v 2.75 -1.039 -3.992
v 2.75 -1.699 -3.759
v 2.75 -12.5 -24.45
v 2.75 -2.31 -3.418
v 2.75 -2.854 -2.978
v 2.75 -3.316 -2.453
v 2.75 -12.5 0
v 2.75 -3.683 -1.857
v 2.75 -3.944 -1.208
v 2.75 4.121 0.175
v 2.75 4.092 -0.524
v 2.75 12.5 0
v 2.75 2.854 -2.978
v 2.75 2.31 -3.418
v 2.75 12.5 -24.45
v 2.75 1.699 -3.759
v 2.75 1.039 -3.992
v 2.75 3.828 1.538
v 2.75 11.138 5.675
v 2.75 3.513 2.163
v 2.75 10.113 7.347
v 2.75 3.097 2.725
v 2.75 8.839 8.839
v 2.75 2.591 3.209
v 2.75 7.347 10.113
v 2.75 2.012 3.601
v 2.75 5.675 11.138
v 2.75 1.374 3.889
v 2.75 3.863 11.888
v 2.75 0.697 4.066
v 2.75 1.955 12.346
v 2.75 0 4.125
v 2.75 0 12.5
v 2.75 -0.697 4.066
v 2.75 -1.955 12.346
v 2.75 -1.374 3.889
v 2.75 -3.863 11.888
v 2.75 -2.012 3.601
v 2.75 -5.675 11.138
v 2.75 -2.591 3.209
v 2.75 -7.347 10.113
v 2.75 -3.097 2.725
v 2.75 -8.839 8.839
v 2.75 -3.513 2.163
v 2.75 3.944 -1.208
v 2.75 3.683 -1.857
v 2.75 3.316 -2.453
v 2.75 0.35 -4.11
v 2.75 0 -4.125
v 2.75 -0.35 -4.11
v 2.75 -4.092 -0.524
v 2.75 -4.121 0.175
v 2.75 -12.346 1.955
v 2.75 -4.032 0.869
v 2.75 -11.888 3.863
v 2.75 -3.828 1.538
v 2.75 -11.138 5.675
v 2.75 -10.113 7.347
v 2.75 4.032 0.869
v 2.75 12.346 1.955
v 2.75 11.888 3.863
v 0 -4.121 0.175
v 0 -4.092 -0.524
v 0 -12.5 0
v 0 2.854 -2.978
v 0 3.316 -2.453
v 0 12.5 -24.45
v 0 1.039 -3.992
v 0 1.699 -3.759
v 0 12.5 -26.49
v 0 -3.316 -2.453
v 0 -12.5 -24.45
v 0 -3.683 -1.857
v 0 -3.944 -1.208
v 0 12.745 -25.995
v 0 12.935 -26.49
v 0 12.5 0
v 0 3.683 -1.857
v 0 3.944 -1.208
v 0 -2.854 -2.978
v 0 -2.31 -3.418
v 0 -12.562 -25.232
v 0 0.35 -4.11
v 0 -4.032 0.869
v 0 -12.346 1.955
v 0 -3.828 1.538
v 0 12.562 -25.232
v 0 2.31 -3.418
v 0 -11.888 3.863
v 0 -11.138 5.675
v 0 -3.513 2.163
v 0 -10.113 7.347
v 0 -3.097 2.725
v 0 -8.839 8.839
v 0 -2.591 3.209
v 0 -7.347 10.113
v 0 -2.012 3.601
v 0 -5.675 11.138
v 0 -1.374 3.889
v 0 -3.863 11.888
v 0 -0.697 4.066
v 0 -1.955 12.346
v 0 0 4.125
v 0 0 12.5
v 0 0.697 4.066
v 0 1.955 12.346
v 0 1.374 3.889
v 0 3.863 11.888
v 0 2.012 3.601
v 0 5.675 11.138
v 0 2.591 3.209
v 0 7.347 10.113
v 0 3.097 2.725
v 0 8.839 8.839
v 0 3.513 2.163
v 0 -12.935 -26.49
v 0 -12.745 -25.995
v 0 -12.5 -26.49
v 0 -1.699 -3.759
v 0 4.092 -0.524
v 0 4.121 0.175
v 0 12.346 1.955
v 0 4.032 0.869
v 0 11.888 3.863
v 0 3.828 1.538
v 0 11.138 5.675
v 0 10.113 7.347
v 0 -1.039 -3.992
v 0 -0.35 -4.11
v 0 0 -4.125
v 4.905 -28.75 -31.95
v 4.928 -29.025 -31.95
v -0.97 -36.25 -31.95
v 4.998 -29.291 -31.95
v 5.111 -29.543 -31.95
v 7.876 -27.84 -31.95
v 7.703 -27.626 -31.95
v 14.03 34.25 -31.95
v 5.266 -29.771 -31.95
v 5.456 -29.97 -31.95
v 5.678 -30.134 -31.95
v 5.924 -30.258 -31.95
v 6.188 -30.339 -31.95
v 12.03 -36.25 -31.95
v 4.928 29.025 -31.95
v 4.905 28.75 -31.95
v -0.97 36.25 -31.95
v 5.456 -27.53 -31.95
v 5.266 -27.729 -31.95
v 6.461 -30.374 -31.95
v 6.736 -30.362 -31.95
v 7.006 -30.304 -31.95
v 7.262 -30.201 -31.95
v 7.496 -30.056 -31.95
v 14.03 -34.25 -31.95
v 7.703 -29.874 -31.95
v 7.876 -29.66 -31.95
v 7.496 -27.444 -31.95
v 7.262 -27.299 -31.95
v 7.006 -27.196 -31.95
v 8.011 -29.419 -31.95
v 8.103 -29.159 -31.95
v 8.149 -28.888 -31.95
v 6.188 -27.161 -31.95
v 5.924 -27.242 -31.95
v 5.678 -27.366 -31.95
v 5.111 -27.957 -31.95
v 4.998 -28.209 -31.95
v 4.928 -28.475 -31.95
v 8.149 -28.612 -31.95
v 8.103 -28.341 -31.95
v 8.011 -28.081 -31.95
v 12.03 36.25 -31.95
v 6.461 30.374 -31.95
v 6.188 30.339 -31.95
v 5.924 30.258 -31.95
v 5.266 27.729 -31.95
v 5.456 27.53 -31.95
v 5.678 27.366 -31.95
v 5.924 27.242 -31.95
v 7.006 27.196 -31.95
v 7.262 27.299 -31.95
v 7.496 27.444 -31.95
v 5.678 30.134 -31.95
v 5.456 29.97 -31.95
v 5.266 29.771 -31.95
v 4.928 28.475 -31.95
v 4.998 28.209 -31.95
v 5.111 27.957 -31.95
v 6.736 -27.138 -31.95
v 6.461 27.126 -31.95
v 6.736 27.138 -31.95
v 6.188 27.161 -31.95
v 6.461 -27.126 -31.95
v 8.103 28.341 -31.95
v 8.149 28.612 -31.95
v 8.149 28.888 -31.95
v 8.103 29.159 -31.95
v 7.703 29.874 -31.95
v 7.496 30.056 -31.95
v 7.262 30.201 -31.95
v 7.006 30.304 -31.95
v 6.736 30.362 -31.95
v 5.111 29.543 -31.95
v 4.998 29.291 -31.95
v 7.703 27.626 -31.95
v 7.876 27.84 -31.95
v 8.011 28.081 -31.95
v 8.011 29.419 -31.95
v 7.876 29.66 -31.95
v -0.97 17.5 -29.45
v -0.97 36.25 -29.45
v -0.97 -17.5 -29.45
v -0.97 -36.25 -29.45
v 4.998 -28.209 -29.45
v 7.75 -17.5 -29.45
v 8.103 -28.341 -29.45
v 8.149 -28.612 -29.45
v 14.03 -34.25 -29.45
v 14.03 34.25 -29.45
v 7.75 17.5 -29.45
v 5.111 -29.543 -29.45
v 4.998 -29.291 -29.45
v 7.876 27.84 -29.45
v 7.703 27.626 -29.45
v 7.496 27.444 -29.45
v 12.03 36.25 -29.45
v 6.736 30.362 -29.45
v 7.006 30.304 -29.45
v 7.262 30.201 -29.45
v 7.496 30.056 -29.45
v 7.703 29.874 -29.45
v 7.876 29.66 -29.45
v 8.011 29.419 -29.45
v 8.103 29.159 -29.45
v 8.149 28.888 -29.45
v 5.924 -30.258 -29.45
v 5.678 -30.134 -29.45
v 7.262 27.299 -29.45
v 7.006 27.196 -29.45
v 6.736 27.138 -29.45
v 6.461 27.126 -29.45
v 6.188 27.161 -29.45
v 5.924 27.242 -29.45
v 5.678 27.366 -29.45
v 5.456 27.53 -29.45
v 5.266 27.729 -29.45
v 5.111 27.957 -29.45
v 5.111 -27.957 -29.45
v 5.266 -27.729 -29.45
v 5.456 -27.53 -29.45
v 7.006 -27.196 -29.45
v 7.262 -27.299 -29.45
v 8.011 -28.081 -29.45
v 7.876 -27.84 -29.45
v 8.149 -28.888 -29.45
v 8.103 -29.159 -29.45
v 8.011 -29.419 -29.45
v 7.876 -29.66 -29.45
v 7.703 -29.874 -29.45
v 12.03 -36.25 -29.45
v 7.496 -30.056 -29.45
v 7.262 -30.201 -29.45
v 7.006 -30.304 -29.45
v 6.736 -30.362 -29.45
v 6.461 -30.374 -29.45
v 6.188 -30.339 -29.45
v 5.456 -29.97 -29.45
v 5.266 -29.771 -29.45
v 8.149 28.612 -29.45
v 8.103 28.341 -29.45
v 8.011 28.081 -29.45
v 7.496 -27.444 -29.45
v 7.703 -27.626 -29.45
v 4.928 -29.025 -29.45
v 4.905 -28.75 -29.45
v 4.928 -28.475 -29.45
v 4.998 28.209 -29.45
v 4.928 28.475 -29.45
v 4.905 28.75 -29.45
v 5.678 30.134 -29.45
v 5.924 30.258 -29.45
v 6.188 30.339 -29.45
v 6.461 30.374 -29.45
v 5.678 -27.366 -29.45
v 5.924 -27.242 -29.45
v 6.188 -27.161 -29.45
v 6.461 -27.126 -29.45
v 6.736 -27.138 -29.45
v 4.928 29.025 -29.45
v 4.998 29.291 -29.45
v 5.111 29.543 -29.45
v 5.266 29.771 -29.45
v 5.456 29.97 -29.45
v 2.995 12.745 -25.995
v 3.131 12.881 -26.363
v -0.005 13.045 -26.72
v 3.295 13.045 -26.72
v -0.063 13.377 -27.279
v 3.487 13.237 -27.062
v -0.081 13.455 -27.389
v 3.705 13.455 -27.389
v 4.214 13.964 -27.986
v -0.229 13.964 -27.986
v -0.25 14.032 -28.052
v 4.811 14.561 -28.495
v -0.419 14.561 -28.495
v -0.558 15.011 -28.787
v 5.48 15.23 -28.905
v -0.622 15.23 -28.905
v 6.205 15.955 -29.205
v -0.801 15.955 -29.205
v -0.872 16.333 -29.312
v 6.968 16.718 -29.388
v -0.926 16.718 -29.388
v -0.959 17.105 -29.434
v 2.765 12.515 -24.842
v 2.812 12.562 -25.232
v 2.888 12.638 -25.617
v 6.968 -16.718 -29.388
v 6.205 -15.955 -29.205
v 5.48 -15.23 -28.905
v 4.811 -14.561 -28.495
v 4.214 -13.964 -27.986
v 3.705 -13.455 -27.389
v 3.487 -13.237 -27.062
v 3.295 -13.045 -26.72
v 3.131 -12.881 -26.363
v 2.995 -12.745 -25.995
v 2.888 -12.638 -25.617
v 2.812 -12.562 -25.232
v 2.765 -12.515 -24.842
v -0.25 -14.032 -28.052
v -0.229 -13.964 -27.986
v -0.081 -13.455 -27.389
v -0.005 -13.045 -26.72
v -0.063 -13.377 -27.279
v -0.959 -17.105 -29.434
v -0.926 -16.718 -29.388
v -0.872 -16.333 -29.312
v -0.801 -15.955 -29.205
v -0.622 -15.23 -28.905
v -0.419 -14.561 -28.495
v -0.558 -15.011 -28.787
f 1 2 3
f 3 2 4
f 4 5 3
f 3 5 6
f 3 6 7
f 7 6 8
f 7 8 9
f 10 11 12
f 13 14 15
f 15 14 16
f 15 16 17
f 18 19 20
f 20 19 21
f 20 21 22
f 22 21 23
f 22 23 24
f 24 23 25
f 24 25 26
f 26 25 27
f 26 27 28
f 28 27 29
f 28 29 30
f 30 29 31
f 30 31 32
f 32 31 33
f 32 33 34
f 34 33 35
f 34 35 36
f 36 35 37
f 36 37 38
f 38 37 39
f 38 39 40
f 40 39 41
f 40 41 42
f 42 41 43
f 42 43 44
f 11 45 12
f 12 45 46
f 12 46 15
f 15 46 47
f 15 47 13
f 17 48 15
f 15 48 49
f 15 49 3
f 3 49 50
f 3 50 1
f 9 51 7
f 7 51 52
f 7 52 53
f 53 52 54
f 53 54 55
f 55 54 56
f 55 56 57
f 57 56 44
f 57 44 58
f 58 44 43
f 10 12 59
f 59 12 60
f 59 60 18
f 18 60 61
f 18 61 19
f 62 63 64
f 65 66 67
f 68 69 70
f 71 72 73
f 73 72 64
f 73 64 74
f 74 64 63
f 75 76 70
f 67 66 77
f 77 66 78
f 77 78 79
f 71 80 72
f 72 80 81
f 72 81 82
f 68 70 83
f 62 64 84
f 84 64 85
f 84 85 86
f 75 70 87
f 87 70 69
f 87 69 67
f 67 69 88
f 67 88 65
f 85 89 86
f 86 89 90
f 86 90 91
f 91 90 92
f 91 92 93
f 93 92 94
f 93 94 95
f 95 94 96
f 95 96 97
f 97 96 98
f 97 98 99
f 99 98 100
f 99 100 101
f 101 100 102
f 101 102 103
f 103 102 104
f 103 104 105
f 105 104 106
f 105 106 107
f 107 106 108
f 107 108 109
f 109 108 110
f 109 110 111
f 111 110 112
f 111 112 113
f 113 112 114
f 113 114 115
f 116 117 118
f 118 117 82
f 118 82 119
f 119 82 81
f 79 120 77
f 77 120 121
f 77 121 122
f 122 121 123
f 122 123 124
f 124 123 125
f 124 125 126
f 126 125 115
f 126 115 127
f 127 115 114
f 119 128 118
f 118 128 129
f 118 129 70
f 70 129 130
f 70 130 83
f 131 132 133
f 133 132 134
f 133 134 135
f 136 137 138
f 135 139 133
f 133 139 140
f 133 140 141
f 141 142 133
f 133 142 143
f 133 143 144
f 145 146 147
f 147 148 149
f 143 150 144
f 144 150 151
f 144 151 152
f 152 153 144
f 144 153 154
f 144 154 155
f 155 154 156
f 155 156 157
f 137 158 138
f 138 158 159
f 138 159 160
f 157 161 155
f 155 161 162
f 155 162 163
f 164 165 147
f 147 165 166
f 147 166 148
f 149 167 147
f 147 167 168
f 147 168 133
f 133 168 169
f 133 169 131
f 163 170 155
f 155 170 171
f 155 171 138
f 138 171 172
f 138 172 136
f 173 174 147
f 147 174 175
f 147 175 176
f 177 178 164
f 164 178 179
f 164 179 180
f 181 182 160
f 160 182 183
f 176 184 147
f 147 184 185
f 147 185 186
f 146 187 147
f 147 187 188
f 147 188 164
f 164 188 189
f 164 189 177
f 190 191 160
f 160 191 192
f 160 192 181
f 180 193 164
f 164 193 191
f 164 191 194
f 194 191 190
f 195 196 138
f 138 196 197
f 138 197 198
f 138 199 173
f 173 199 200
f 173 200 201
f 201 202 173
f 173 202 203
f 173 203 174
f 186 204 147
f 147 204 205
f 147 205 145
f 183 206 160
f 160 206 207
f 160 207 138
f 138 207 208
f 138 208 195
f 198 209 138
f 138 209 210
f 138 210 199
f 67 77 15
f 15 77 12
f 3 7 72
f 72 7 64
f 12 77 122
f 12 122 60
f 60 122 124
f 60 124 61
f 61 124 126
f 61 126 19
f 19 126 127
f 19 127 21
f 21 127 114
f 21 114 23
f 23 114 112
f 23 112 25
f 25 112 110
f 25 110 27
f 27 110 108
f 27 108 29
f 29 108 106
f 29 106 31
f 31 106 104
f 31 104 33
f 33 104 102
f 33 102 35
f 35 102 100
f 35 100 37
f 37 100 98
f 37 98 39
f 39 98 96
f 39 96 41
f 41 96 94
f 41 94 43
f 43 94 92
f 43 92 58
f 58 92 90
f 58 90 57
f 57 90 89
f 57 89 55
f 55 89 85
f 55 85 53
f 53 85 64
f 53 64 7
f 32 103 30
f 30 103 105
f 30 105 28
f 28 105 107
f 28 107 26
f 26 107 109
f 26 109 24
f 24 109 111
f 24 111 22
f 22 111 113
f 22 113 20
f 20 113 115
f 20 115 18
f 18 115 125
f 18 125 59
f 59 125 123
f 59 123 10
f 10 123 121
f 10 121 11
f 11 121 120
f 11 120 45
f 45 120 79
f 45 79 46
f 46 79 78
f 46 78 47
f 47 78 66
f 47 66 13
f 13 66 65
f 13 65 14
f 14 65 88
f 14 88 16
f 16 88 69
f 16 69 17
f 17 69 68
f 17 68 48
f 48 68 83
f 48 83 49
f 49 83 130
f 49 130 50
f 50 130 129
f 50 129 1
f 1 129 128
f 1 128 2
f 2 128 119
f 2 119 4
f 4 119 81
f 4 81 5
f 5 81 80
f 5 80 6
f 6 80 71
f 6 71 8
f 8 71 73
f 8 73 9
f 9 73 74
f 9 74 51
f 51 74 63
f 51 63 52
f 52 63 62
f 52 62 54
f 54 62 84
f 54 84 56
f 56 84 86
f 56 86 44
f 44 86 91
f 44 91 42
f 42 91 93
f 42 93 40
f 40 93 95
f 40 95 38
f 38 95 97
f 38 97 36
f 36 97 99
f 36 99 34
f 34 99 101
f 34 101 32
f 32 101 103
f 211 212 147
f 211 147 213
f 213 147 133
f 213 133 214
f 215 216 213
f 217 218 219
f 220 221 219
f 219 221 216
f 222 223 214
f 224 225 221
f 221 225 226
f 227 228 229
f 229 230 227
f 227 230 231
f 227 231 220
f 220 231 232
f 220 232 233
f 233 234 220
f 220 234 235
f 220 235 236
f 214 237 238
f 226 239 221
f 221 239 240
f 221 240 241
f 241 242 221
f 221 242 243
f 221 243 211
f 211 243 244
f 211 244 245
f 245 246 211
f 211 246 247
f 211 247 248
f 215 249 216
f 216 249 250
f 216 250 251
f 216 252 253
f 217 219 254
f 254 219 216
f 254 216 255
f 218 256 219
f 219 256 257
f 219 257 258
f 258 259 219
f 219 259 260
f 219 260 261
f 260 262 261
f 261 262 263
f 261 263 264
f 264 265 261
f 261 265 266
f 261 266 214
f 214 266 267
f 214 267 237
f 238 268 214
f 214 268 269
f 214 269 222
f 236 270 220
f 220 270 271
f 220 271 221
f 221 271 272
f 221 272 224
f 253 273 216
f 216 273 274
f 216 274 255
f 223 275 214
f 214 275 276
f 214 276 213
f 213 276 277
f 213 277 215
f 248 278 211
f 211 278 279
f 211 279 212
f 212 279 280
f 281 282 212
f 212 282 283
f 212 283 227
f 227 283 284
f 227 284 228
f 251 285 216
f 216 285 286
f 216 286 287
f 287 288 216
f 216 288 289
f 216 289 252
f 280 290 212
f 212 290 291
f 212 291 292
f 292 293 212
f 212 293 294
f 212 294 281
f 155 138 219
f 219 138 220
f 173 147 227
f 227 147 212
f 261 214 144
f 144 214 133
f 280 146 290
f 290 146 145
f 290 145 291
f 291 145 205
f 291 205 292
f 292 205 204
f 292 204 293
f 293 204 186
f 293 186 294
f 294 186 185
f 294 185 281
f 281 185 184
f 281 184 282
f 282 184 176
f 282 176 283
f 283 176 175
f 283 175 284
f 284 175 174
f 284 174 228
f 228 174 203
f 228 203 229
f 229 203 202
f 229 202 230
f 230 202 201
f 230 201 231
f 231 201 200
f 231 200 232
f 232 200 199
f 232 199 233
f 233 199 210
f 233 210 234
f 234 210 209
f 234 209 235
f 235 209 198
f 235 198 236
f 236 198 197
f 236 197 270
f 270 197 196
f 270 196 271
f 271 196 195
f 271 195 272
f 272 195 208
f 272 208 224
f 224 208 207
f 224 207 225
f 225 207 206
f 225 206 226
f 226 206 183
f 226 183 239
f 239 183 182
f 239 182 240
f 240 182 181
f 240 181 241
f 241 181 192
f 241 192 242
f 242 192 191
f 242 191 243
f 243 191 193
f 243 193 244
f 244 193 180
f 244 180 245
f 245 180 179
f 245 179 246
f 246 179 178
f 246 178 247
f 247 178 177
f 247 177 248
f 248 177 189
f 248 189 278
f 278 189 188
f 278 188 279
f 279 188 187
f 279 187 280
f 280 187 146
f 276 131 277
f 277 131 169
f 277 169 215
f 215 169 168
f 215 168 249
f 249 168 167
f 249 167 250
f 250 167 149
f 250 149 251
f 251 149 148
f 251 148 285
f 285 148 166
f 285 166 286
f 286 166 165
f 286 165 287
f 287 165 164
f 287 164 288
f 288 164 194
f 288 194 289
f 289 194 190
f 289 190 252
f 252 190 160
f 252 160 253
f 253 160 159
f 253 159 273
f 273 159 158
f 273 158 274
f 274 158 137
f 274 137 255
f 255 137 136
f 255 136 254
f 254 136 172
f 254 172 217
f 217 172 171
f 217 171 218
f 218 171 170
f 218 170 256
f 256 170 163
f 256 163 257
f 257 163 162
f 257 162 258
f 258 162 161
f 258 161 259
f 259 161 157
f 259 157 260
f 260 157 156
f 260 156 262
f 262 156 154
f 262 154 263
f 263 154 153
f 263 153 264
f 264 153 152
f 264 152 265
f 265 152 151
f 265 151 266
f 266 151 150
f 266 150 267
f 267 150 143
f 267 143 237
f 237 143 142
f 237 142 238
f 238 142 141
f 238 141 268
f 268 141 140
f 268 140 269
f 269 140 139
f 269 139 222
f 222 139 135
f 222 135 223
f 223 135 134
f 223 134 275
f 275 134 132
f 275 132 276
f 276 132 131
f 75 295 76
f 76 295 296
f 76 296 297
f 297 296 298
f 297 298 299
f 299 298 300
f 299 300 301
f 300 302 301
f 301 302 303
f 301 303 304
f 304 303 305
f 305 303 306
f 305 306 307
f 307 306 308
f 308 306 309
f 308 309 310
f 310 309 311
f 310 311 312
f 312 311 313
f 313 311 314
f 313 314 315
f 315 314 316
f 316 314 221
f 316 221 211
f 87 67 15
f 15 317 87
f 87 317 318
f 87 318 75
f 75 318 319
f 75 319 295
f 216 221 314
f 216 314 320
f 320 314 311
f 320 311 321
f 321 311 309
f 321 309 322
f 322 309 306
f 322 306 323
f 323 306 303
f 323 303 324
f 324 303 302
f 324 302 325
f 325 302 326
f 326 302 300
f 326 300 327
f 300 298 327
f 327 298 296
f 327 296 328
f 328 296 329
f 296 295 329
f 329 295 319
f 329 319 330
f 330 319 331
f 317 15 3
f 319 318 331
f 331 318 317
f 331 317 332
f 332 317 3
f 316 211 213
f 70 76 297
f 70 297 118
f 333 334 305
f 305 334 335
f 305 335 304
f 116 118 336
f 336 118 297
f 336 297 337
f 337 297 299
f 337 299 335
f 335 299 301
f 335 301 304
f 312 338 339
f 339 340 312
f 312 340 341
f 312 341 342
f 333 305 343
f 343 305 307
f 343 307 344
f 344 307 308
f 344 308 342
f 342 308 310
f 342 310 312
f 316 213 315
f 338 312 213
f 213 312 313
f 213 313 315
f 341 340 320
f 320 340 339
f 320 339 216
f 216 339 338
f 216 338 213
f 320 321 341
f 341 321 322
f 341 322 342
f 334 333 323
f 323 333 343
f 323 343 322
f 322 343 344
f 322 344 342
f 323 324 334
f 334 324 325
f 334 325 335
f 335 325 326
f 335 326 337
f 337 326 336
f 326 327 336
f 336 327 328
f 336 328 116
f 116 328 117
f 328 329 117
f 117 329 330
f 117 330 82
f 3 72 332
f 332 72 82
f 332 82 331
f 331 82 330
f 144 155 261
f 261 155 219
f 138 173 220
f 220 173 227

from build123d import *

# Parameters (mm, degrees)
SKETCH1_R               = 4.125
BOSS_EXTRUDE1_DEPTH     = 2.75
BOSS_EXTRUDE4_DEPTH     = 2.5
CUT_EXTRUDE2_REACH      = 80.314
SKETCH7_W               = 7
SKETCH7_H               = 16.5
SKETCH7_W_2             = 16
SKETCH7_H_2             = 8
CUT_EXTRUDE3_REACH      = 82.041
SKETCH9_W               = 2.75
SKETCH9_H               = 22.388822383
SKETCH8_W               = 2.75
SKETCH8_H               = 27.825
BOSS_EXTRUDE5_DEPTH     = 12.5
FILLET2_R               = 1
FILLET3_R               = 4
CUT_EXTRUDE4_DEPTH      = 74.103052287
CUT_EXTRUDE4_DEPTH_BACK = 74.103052287
SKETCH10_W              = 78.235731334
SKETCH10_H              = 6.290045588
SKETCH11_W              = 15
SKETCH11_H              = 2.5
BOSS_EXTRUDE6_DEPTH     = 12.5
BOSS_EXTRUDE7_DEPTH     = 2.5
SKETCH14_R              = 1.625
CUT_EXTRUDE5_DEPTH      = 2.5
FILLET4_R               = 5
CHAMFER1_SIZE           = 2


with BuildPart() as part:
    # Sketch1 → Boss-Extrude1 (new body)
    with BuildSketch(Plane(origin=(0, 0, 0), x_dir=(0, 0, -1), z_dir=(1, 0, 0))):
        with BuildLine():
            Line((0, 12.5), (34.45, 12.5))
            Line((34.45, 12.5), (34.45, -12.5))
            Line((34.45, -12.5), (0, -12.5))
            ThreePointArc((0, -12.5), (-12.5, 0), (0, 12.5))
        make_face()
        Circle(SKETCH1_R, mode=Mode.SUBTRACT)
    extrude(amount=BOSS_EXTRUDE1_DEPTH)

    # Sketch6 → Boss-Extrude4 (add)
    with BuildSketch(Plane(origin=(0, 0, -34.45), x_dir=(-1, 0, 0), z_dir=(0, 0, -1))):
        Polygon((-8.812505246, 36.25), (53.321583376, 36.25), (53.321583376, -36.25), (6.25, -36.25), (-19.178416624, -36.25), (-19.178416624, 36.25), align=None)
    extrude(amount=-BOSS_EXTRUDE4_DEPTH)

    # Sketch7 → Cut-Extrude2 (cut, up to next)
    with BuildSketch(Plane.XY.offset(-31.95), mode=Mode.PRIVATE) as cut_extrude2_sk1:
        with Locations((-1.711858899, -11.632438111)):
            Rectangle(SKETCH7_W, SKETCH7_H)
    cut_extrude2_tool1 = extrude(cut_extrude2_sk1.sketch, amount=-CUT_EXTRUDE2_REACH, mode=Mode.PRIVATE) & part.part
    # Sketch7 → Cut-Extrude2 (cut, up to next)
    with BuildSketch(Plane.XY.offset(-31.95), mode=Mode.PRIVATE) as cut_extrude2_sk2:
        with Locations((-16.5, 0)):
            Rectangle(SKETCH7_W_2, SKETCH7_H_2)
    cut_extrude2_tool2 = extrude(cut_extrude2_sk2.sketch, amount=-CUT_EXTRUDE2_REACH, mode=Mode.PRIVATE) & part.part
    add(cut_extrude2_tool1.solids().sort_by_distance((-1.711859, -11.632438, -31.95))[0], mode=Mode.SUBTRACT)
    add(cut_extrude2_tool2.solids().sort_by_distance((-16.5, 0, -31.95))[0], mode=Mode.SUBTRACT)

    # Sketch9 → Cut-Extrude3 (cut, up to next)
    with BuildSketch(Plane.XZ.offset(12.5), mode=Mode.PRIVATE) as cut_extrude3_sk1:
        with Locations((1.375, -20.755588809)):
            Rectangle(SKETCH9_W, SKETCH9_H)
    cut_extrude3_tool1 = extrude(cut_extrude3_sk1.sketch, amount=-CUT_EXTRUDE3_REACH, mode=Mode.PRIVATE) & part.part
    add(cut_extrude3_tool1.solids().sort_by_distance((1.375, -12.5, -20.755589))[0], mode=Mode.SUBTRACT)


with BuildPart() as cut_extrude3_piece_1:
    # of the separate pieces the step leaves, piece 1, a body of its own (cut_extrude3_pieces)
    add(part.part.solids().sort_by_distance((-53.321583376, 36.25, -31.95))[0])



with BuildPart() as cut_extrude3_piece_2:
    # of the separate pieces the step leaves, piece 2, a body of its own (cut_extrude3_pieces)
    add(part.part.solids().sort_by_distance((0, 12.5, 0))[0])


with BuildPart() as cut_extrude3_piece_1_1:
    add(cut_extrude3_piece_1.part)

    add(cut_extrude3_piece_2.part)  # Boss-Extrude5 merges Cut-Extrude3 piece 2
    # Sketch8 → Boss-Extrude5 (add, symmetric)
    with BuildSketch(Plane(origin=(0, 0, 0), x_dir=(1, 0, 0), z_dir=(0, 1, 0))):
        with Locations((1.375, 18.0375)):
            Rectangle(SKETCH8_W, SKETCH8_H)
    extrude(amount=BOSS_EXTRUDE5_DEPTH, both=True)

    # Fillet2
    fillet2_edges = [cut_extrude3_piece_1_1.edges().sort_by_distance(p)[0] for p in [
        (-8.5, 4, -33.2),
        (-8.5, -4, -33.2),
        (-24.5, -4, -33.2),
        (-24.5, 4, -33.2),
        (-5.211858899, -19.882438111, -33.2),
        (-5.211858899, -3.382438111, -33.2),
        (1.788141101, -3.382438111, -33.2),
        (1.788141101, -19.882438111, -33.2),
    ]]
    fillet(fillet2_edges, radius=FILLET2_R)

    # Fillet3
    fillet3_edges = [cut_extrude3_piece_1_1.edges().sort_by_distance(p)[0] for p in [
        (19.178416624, 36.25, -33.2),
        (-53.321583376, 36.25, -33.2),
        (-53.321583376, -36.25, -33.2),
        (19.178416624, -36.25, -33.2),
    ]]
    fillet(fillet3_edges, radius=FILLET3_R)

    # Sketch10 → Cut-Extrude4 (cut, two sides: drawn at the far end of the back side and taken through both)
    with BuildSketch(Plane(origin=(0, 0, 0), x_dir=(1, 0, 0), z_dir=(0, 1, 0)).offset(-CUT_EXTRUDE4_DEPTH_BACK)):
        with Locations((-17.391929865, 35.095022794)):
            Rectangle(SKETCH10_W, SKETCH10_H)
    extrude(amount=CUT_EXTRUDE4_DEPTH + CUT_EXTRUDE4_DEPTH_BACK, mode=Mode.SUBTRACT)

    # Sketch11 → Boss-Extrude6 (add, symmetric)
    with BuildSketch(Plane(origin=(0, 0, 0), x_dir=(1, 0, 0), z_dir=(0, 1, 0))):
        with Locations((6.53, 30.7)):
            Rectangle(SKETCH11_W, SKETCH11_H)
    boss_extrude6 = extrude(amount=BOSS_EXTRUDE6_DEPTH, both=True)

    # Sketch13 → Boss-Extrude7 (add)
    with BuildSketch(Plane(origin=(0, 0, -31.95), x_dir=(-1, 0, 0), z_dir=(0, 0, -1))):
        Polygon((-14.03, 12.5), (0.97, 12.5), (0.97, 36.25), (-10.03, 36.25), (-14.03, 36.25), (-14.03, 32.25), align=None)
    boss_extrude7 = extrude(amount=-BOSS_EXTRUDE7_DEPTH)

    # Mirror1: Boss-Extrude6, Boss-Extrude7 across plane
    add(boss_extrude6.mirror(Plane.ZX))
    add(boss_extrude7.mirror(Plane.ZX))

    # Sketch14 → Cut-Extrude5 (cut)
    with BuildSketch(Plane(origin=(0, 0, -31.95), x_dir=(-1, 0, 0), z_dir=(0, 0, -1))):
        with Locations((-6.53, 28.75)):
            Circle(SKETCH14_R)
    cut_extrude5 = extrude(amount=-CUT_EXTRUDE5_DEPTH, mode=Mode.SUBTRACT)

    # Mirror2: Cut-Extrude5 across plane
    add(cut_extrude5.mirror(Plane.ZX), mode=Mode.SUBTRACT)

    # Fillet4
    # the kernel refuses this fillet: 5 mm, written as the material it adds along each edge
    with BuildSketch(Plane(origin=(2.75, -12.5, -29.45), x_dir=(1, 0, 0), z_dir=(0, 1, 0))) as fillet4_piece_1:
        with BuildLine():
            CenterArc((FILLET4_R, -FILLET4_R), FILLET4_R, 90, 90)
            Line((0, -FILLET4_R), (-FILLET4_R * 0.02, -FILLET4_R))
            Line((-FILLET4_R * 0.02, -FILLET4_R), (-FILLET4_R * 0.02, FILLET4_R * 0.02))
            Line((-FILLET4_R * 0.02, FILLET4_R * 0.02), (FILLET4_R, FILLET4_R * 0.02))
            Line((FILLET4_R, FILLET4_R * 0.02), (FILLET4_R, 0))
        make_face()
    extrude(amount=25)
    with BuildSketch(Plane(origin=(0, -12.5, -29.45), x_dir=(-1, 0, 0), z_dir=(0, 1, 0))) as fillet4_piece_2:
        with BuildLine():
            CenterArc((5, 2.959577673), FILLET4_R, 180, 36.293058493)
            Line((0, 2.959577673), (-0.1, 2.959577673))
            Line((-0.1, 2.959577673), (-0.1, 0))
            Line((-0.1, 0), (0, -0.1))
            ThreePointArc((0, -0.1), (0.485, -0.1), (0.8894, -0.059191553))
            Line((0.8894, -0.059191553), (0.97, 0))
        make_face()
    extrude(amount=25)
    with BuildSketch(Plane(origin=(2.75, 12.5, -29.45), x_dir=(0, 0, 1), z_dir=(-1, 0, 0)), Plane(origin=(2.75, -12.5, -29.45), x_dir=(0, -1, 0), z_dir=(-1, 0, 0))) as fillet4_piece_3:
        with BuildLine():
            CenterArc((FILLET4_R, FILLET4_R), FILLET4_R, 180, 90)
            Line((0, FILLET4_R), (-FILLET4_R * 0.02, FILLET4_R))
            Line((-FILLET4_R * 0.02, FILLET4_R), (-FILLET4_R * 0.02, -FILLET4_R * 0.02))
            Line((-FILLET4_R * 0.02, -FILLET4_R * 0.02), (FILLET4_R, -FILLET4_R * 0.02))
            Line((FILLET4_R, -FILLET4_R * 0.02), (FILLET4_R, 0))
        make_face()
    extrude(amount=2.75)
    with BuildSketch(Plane(origin=(2.75, -25, -29.45), x_dir=(1, 0, 0), z_dir=(0, 1, 0))) as fillet4_piece_4a_section:
        with BuildLine():
            CenterArc((FILLET4_R, -FILLET4_R), FILLET4_R, 90, 90)
            Line((0, -FILLET4_R), (-FILLET4_R * 0.02, -FILLET4_R))
            Line((-FILLET4_R * 0.02, -FILLET4_R), (-FILLET4_R * 0.02, FILLET4_R * 0.02))
            Line((-FILLET4_R * 0.02, FILLET4_R * 0.02), (FILLET4_R, FILLET4_R * 0.02))
            Line((FILLET4_R, FILLET4_R * 0.02), (FILLET4_R, 0))
        make_face()
    fillet4_piece_4a = extrude(amount=37.5, mode=Mode.PRIVATE)
    fillet4_piece_4a = split(fillet4_piece_4a, bisect_by=Plane(origin=(3.881975571, -12.5, -28.318024429), z_dir=(0, -1, 0)), keep=Keep.TOP, mode=Mode.PRIVATE)
    with BuildSketch(Plane(origin=(15.25, -12.5, -29.45), x_dir=(0, -1, 0), z_dir=(-1, 0, 0))) as fillet4_piece_4b_section:
        with BuildLine():
            CenterArc((FILLET4_R, FILLET4_R), FILLET4_R, 180, 90)
            Line((0, FILLET4_R), (-FILLET4_R * 0.02, FILLET4_R))
            Line((-FILLET4_R * 0.02, FILLET4_R), (-FILLET4_R * 0.02, -FILLET4_R * 0.02))
            Line((-FILLET4_R * 0.02, -FILLET4_R * 0.02), (FILLET4_R, -FILLET4_R * 0.02))
            Line((FILLET4_R, -FILLET4_R * 0.02), (FILLET4_R, 0))
        make_face()
    fillet4_piece_4b = extrude(amount=15.25, mode=Mode.PRIVATE)
    fillet4_piece_4b = split(fillet4_piece_4b, bisect_by=Plane(origin=(14.03, -13.631975571, -28.318024429), z_dir=(-1, 0, 0)), keep=Keep.TOP, mode=Mode.PRIVATE)
    fillet4_piece_4b = split(fillet4_piece_4b, bisect_by=Plane(origin=(2.75, -13.631975571, -28.318024429), z_dir=(1, 0, 0)), keep=Keep.TOP, mode=Mode.PRIVATE)
    fillet4_piece_4 = fillet4_piece_4a & fillet4_piece_4b
    add(fillet4_piece_4)
    with BuildSketch(Plane(origin=(15.25, 12.5, -29.45), x_dir=(0, 0, 1), z_dir=(-1, 0, 0))) as fillet4_piece_5a_section:
        with BuildLine():
            CenterArc((FILLET4_R, FILLET4_R), FILLET4_R, 180, 90)
            Line((0, FILLET4_R), (-FILLET4_R * 0.02, FILLET4_R))
            Line((-FILLET4_R * 0.02, FILLET4_R), (-FILLET4_R * 0.02, -FILLET4_R * 0.02))
            Line((-FILLET4_R * 0.02, -FILLET4_R * 0.02), (FILLET4_R, -FILLET4_R * 0.02))
            Line((FILLET4_R, -FILLET4_R * 0.02), (FILLET4_R, 0))
        make_face()
    fillet4_piece_5a = extrude(amount=15.25, mode=Mode.PRIVATE)
    fillet4_piece_5a = split(fillet4_piece_5a, bisect_by=Plane(origin=(2.75, 13.631975571, -28.318024429), z_dir=(1, 0, 0)), keep=Keep.TOP, mode=Mode.PRIVATE)
    fillet4_piece_5a = split(fillet4_piece_5a, bisect_by=Plane(origin=(14.03, 13.631975571, -28.318024429), z_dir=(-1, 0, 0)), keep=Keep.TOP, mode=Mode.PRIVATE)
    with BuildSketch(Plane(origin=(2.75, -12.5, -29.45), x_dir=(1, 0, 0), z_dir=(0, 1, 0))) as fillet4_piece_5b_section:
        with BuildLine():
            CenterArc((FILLET4_R, -FILLET4_R), FILLET4_R, 90, 90)
            Line((0, -FILLET4_R), (-FILLET4_R * 0.02, -FILLET4_R))
            Line((-FILLET4_R * 0.02, -FILLET4_R), (-FILLET4_R * 0.02, FILLET4_R * 0.02))
            Line((-FILLET4_R * 0.02, FILLET4_R * 0.02), (FILLET4_R, FILLET4_R * 0.02))
            Line((FILLET4_R, FILLET4_R * 0.02), (FILLET4_R, 0))
        make_face()
    fillet4_piece_5b = extrude(amount=37.5, mode=Mode.PRIVATE)
    fillet4_piece_5b = split(fillet4_piece_5b, bisect_by=Plane(origin=(3.881975571, 12.5, -28.318024429), z_dir=(0, 1, 0)), keep=Keep.TOP, mode=Mode.PRIVATE)
    fillet4_piece_5 = fillet4_piece_5a & fillet4_piece_5b
    add(fillet4_piece_5)
    with BuildSketch(Plane(origin=(2.75, -12.5, -29.45), x_dir=(0, -1, 0), z_dir=(-1, 0, 0))) as fillet4_piece_6a_section:
        with BuildLine():
            CenterArc((FILLET4_R, FILLET4_R), FILLET4_R, 180, 90)
            Line((0, FILLET4_R), (-FILLET4_R * 0.02, FILLET4_R))
            Line((-FILLET4_R * 0.02, FILLET4_R), (-FILLET4_R * 0.02, -FILLET4_R * 0.02))
            Line((-FILLET4_R * 0.02, -FILLET4_R * 0.02), (FILLET4_R, -FILLET4_R * 0.02))
            Line((FILLET4_R, -FILLET4_R * 0.02), (FILLET4_R, 0))
        make_face()
    fillet4_piece_6a = extrude(amount=15.25, mode=Mode.PRIVATE)
    fillet4_piece_6a = split(fillet4_piece_6a, bisect_by=Plane(origin=(-0.97, -13.631975571, -28.318024429), z_dir=(1, 0, 0)), keep=Keep.TOP, mode=Mode.PRIVATE)
    fillet4_piece_6a = split(fillet4_piece_6a, bisect_by=Plane(origin=(0, -13.631975571, -28.318024429), z_dir=(-1, 0, 0)), keep=Keep.TOP, mode=Mode.PRIVATE)
    with BuildSketch(Plane(origin=(0, -19.898944181, -29.45), x_dir=(-1, 0, 0), z_dir=(0, 1, 0))) as fillet4_piece_6b_section:
        with BuildLine():
            CenterArc((5, 2.959577673), FILLET4_R, 180, 36.293058493)
            Line((0, 2.959577673), (-0.1, 2.959577673))
            Line((-0.1, 2.959577673), (-0.1, 0))
            Line((-0.1, 0), (0, -0.1))
            ThreePointArc((0, -0.1), (0.485, -0.1), (0.8894, -0.059191553))
            Line((0.8894, -0.059191553), (0.97, 0))
        make_face()
    fillet4_piece_6b = extrude(amount=32.398944181, mode=Mode.PRIVATE)
    fillet4_piece_6b = split(fillet4_piece_6b, bisect_by=Plane(origin=(-0.217435867, -12.5, -28.607978011), z_dir=(0, -1, 0)), keep=Keep.TOP, mode=Mode.PRIVATE)
    fillet4_piece_6 = fillet4_piece_6a & fillet4_piece_6b
    add(fillet4_piece_6)
    with BuildSketch(Plane(origin=(2.75, 12.5, -29.45), x_dir=(0, 0, 1), z_dir=(-1, 0, 0))) as fillet4_piece_7a_section:
        with BuildLine():
            CenterArc((FILLET4_R, FILLET4_R), FILLET4_R, 180, 90)
            Line((0, FILLET4_R), (-FILLET4_R * 0.02, FILLET4_R))
            Line((-FILLET4_R * 0.02, FILLET4_R), (-FILLET4_R * 0.02, -FILLET4_R * 0.02))
            Line((-FILLET4_R * 0.02, -FILLET4_R * 0.02), (FILLET4_R, -FILLET4_R * 0.02))
            Line((FILLET4_R, -FILLET4_R * 0.02), (FILLET4_R, 0))
        make_face()
    fillet4_piece_7a = extrude(amount=15.25, mode=Mode.PRIVATE)
    fillet4_piece_7a = split(fillet4_piece_7a, bisect_by=Plane(origin=(0, 13.631975571, -28.318024429), z_dir=(-1, 0, 0)), keep=Keep.TOP, mode=Mode.PRIVATE)
    fillet4_piece_7a = split(fillet4_piece_7a, bisect_by=Plane(origin=(-0.97, 13.631975571, -28.318024429), z_dir=(1, 0, 0)), keep=Keep.TOP, mode=Mode.PRIVATE)
    with BuildSketch(Plane(origin=(0, -12.5, -29.45), x_dir=(-1, 0, 0), z_dir=(0, 1, 0))) as fillet4_piece_7b_section:
        with BuildLine():
            CenterArc((5, 2.959577673), FILLET4_R, 180, 36.293058493)
            Line((0, 2.959577673), (-0.1, 2.959577673))
            Line((-0.1, 2.959577673), (-0.1, 0))
            Line((-0.1, 0), (0, -0.1))
            ThreePointArc((0, -0.1), (0.485, -0.1), (0.8894, -0.059191553))
            Line((0.8894, -0.059191553), (0.97, 0))
        make_face()
    fillet4_piece_7b = extrude(amount=32.398944181, mode=Mode.PRIVATE)
    fillet4_piece_7b = split(fillet4_piece_7b, bisect_by=Plane(origin=(-0.217435867, 12.5, -28.607978011), z_dir=(0, 1, 0)), keep=Keep.TOP, mode=Mode.PRIVATE)
    fillet4_piece_7 = fillet4_piece_7a & fillet4_piece_7b
    add(fillet4_piece_7)

    # Chamfer1
    chamfer1_edges = [cut_extrude3_piece_1_1.edges().sort_by_distance(p)[0] for p in [
        (14.03, 36.25, -30.7),
        (14.03, -36.25, -30.7),
    ]]
    chamfer(chamfer1_edges, length=CHAMFER1_SIZE)


solid = cut_extrude3_piece_1_1.part
